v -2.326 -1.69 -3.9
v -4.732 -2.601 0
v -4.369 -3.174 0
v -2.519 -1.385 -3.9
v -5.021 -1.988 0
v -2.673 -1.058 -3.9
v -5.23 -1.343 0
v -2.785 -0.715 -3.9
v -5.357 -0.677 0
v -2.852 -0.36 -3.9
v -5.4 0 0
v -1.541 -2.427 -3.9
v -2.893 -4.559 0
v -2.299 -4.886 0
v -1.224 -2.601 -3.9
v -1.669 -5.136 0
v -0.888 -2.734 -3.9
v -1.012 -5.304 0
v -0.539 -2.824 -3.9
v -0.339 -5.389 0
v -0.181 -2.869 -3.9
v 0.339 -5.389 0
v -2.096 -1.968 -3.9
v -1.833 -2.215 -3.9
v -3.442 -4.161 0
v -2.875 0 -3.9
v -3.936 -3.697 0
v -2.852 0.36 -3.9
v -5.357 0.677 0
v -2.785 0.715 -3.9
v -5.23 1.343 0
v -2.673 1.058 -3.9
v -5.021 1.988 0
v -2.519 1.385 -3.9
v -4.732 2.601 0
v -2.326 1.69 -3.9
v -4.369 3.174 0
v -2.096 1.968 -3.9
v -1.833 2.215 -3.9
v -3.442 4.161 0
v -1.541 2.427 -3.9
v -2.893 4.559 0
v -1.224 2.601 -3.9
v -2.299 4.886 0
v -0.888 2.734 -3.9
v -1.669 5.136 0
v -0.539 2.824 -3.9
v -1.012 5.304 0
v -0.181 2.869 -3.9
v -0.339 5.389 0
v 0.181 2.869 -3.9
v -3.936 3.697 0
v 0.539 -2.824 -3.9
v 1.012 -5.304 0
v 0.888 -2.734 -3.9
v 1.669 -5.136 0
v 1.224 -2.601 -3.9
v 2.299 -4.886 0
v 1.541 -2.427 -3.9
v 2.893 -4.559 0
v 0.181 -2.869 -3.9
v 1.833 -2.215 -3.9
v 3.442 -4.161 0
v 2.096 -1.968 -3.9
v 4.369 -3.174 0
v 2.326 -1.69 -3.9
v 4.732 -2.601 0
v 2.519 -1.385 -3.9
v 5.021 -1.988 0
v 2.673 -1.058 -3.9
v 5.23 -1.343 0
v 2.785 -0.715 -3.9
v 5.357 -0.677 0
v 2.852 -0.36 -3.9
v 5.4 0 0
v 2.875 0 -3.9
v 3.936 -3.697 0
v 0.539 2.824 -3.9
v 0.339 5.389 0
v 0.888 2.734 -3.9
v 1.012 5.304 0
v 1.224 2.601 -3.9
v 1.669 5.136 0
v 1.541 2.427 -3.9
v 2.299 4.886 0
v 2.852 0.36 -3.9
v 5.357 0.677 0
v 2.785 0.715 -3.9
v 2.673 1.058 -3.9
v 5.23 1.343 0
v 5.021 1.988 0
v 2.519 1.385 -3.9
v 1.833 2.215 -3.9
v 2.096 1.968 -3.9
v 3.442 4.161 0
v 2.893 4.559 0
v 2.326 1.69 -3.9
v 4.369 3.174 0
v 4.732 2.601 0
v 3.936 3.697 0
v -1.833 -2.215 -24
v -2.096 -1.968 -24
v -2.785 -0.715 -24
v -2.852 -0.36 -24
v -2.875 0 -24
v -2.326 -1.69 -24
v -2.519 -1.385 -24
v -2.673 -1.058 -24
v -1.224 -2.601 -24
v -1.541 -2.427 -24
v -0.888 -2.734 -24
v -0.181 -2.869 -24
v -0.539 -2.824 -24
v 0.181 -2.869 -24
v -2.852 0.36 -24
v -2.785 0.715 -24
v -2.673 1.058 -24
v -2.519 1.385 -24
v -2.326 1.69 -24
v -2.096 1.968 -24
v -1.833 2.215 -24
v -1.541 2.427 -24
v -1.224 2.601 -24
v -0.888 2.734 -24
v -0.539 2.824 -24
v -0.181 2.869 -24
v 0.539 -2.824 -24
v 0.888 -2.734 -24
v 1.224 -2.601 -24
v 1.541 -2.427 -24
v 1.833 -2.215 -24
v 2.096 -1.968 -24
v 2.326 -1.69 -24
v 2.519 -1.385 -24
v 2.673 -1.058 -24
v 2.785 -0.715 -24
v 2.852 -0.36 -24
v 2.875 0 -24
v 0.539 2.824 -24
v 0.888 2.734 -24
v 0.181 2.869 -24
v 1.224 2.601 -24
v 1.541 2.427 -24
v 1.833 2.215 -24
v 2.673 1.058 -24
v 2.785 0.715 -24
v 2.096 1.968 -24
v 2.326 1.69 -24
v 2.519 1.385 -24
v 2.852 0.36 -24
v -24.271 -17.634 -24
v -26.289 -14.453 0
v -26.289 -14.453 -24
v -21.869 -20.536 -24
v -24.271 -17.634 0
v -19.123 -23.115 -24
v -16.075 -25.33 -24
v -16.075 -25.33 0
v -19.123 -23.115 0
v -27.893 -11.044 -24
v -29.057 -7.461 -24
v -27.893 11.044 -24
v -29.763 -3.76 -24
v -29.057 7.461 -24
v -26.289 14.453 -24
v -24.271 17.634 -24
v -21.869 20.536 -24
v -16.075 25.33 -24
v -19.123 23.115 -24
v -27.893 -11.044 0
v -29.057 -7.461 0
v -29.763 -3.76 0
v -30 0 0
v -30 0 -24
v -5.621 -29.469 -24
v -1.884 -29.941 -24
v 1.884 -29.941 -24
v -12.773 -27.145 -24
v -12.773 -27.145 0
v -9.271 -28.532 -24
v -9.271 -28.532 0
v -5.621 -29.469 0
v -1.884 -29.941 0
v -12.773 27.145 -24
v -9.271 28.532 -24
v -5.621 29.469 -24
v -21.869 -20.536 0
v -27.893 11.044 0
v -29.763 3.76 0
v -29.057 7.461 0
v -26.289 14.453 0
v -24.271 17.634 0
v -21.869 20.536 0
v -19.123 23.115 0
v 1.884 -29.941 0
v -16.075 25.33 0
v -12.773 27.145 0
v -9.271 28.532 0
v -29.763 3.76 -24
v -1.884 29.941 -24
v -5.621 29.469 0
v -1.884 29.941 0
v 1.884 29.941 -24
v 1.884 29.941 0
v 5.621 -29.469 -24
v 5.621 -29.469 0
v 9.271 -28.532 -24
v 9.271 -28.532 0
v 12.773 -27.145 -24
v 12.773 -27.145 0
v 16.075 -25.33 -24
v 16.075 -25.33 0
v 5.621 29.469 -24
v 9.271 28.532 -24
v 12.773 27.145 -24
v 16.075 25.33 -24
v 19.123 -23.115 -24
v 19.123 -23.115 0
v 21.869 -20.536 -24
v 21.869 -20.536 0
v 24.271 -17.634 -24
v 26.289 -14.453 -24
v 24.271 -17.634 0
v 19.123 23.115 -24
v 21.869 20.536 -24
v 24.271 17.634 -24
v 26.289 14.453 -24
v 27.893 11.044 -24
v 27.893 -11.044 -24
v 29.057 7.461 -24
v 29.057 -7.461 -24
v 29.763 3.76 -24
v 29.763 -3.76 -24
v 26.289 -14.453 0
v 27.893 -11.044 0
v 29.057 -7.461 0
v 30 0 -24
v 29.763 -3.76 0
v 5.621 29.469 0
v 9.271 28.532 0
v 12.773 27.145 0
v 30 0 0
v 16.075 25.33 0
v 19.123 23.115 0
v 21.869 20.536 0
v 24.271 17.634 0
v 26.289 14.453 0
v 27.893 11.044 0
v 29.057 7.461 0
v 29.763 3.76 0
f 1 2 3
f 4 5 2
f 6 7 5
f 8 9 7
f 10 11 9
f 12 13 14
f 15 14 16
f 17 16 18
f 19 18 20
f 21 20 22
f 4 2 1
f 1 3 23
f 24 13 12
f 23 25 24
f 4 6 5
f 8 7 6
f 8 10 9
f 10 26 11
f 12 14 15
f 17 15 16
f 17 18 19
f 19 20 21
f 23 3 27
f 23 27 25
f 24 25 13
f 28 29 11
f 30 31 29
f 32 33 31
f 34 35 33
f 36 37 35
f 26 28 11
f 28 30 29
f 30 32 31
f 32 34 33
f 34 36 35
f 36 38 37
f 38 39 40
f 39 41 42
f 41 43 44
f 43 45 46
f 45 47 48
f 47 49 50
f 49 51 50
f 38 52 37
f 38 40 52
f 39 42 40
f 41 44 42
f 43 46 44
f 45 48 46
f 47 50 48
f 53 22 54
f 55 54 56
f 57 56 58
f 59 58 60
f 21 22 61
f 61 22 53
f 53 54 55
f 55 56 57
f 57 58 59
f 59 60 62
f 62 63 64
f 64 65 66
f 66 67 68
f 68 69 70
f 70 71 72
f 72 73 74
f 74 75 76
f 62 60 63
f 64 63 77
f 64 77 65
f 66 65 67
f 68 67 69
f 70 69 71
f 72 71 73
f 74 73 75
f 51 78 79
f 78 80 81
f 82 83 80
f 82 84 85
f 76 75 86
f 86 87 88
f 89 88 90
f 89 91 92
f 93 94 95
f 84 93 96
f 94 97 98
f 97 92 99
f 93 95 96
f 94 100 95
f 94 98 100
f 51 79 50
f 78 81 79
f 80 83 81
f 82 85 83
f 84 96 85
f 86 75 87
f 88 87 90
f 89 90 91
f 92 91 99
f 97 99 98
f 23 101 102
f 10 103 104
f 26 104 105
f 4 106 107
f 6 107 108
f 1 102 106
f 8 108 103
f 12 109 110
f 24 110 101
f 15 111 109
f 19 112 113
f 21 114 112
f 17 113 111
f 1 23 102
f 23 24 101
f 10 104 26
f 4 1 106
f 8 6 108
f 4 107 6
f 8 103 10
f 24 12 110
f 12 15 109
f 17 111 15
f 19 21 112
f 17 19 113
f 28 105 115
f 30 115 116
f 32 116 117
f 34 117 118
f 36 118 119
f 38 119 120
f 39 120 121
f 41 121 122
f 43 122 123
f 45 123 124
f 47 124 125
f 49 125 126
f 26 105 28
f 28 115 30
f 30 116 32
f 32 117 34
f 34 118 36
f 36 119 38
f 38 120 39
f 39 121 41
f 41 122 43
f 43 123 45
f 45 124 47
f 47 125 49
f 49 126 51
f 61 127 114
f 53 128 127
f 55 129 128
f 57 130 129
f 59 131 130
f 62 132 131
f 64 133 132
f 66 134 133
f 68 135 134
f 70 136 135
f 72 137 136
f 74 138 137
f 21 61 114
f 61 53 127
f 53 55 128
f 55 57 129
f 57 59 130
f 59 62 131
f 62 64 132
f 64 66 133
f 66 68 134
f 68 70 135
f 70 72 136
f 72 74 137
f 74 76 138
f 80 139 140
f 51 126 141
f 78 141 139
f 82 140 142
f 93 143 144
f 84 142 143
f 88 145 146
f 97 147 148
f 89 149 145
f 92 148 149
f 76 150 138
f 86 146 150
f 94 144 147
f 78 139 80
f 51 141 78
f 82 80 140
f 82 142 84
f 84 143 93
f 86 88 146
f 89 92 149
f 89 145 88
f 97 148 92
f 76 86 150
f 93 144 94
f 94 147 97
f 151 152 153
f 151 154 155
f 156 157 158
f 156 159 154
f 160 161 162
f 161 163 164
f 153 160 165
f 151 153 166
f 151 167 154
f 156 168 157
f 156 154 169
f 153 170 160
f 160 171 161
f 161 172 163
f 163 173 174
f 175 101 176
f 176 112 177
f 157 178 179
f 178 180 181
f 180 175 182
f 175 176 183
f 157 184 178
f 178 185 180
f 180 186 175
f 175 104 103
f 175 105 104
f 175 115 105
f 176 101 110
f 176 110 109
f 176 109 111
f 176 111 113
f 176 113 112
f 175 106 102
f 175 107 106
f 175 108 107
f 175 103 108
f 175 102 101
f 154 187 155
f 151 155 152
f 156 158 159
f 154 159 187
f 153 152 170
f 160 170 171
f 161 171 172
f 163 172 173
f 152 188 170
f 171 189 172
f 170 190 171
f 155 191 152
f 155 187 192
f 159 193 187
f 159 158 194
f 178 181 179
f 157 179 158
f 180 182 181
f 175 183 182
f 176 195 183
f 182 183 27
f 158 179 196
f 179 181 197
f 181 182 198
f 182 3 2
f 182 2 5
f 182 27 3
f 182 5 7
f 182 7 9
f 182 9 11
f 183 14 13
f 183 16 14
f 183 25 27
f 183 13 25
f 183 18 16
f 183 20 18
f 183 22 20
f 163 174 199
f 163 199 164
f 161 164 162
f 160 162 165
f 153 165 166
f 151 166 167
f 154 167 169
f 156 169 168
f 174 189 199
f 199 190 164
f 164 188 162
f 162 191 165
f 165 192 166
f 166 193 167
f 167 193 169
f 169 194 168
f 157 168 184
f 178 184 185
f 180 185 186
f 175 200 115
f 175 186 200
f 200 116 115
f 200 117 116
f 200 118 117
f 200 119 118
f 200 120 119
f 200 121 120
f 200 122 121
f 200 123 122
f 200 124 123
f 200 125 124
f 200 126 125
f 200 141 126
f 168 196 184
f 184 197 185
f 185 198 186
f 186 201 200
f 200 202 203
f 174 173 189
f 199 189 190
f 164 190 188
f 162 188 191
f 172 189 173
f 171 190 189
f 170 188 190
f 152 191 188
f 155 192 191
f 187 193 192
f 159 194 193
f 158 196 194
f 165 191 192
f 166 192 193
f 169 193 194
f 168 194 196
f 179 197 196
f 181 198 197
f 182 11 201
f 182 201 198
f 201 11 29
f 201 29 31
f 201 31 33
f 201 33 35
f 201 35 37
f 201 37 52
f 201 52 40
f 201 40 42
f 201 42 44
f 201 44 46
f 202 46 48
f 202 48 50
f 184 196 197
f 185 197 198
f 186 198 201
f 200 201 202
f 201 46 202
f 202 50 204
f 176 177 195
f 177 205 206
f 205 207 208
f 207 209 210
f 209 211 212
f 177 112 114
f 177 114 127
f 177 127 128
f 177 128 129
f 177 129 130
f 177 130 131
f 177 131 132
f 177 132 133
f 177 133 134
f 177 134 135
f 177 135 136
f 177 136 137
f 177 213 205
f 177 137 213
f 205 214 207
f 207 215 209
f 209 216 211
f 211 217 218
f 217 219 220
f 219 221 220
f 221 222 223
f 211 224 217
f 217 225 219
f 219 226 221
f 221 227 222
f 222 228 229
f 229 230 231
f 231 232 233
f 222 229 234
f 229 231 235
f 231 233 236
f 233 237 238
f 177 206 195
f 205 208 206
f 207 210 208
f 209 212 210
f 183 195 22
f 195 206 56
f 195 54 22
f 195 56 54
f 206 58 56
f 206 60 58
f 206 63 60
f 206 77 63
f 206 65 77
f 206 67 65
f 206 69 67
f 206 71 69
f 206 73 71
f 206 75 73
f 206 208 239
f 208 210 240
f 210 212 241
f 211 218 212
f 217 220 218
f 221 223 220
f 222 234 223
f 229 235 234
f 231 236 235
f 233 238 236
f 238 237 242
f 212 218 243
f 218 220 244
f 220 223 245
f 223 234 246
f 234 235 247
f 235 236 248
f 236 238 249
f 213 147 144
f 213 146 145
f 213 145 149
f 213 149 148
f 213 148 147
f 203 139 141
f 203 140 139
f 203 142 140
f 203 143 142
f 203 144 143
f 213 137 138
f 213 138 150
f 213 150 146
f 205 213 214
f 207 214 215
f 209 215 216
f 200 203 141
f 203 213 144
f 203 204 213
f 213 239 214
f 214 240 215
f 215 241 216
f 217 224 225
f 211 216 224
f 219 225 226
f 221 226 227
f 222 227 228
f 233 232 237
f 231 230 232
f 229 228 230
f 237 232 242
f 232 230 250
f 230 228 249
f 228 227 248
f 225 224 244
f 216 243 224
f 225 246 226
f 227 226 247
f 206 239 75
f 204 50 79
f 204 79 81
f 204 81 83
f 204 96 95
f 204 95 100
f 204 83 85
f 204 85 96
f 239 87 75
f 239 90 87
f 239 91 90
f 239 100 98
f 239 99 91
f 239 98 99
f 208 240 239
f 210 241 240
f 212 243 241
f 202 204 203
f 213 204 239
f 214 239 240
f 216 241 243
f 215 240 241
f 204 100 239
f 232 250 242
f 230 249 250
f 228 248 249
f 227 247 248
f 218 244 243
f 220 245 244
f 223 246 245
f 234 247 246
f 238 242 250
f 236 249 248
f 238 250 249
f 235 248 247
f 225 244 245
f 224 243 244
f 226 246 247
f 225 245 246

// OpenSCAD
$fn = 50;

difference() {
	union() {
		translate(v = [0, 0, -24.0]) {
			cylinder(h = 24, r = 30.0);
		}
	}
	union() {
		translate(v = [0, 0, 0]) {
			rotate(a = [0, 0, 0]) {
				difference() {
					union() {
						translate(v = [0, 0, -27.0]) {
							cylinder(h = 27, r = 2.6);
						}
						translate(v = [0, 0, -3.9]) {
							cylinder(h = 3.9, r1 = 2.875, r2 = 5.4);
						}
						translate(v = [0, 0, -27.0]) {
							cylinder(h = 27, r = 2.875);
						}
						translate(v = [0, 0, -27.0]) {
							cylinder(h = 27, r = 2.6);
						}
					}
					union();
				}
			}
		}
	}
}
